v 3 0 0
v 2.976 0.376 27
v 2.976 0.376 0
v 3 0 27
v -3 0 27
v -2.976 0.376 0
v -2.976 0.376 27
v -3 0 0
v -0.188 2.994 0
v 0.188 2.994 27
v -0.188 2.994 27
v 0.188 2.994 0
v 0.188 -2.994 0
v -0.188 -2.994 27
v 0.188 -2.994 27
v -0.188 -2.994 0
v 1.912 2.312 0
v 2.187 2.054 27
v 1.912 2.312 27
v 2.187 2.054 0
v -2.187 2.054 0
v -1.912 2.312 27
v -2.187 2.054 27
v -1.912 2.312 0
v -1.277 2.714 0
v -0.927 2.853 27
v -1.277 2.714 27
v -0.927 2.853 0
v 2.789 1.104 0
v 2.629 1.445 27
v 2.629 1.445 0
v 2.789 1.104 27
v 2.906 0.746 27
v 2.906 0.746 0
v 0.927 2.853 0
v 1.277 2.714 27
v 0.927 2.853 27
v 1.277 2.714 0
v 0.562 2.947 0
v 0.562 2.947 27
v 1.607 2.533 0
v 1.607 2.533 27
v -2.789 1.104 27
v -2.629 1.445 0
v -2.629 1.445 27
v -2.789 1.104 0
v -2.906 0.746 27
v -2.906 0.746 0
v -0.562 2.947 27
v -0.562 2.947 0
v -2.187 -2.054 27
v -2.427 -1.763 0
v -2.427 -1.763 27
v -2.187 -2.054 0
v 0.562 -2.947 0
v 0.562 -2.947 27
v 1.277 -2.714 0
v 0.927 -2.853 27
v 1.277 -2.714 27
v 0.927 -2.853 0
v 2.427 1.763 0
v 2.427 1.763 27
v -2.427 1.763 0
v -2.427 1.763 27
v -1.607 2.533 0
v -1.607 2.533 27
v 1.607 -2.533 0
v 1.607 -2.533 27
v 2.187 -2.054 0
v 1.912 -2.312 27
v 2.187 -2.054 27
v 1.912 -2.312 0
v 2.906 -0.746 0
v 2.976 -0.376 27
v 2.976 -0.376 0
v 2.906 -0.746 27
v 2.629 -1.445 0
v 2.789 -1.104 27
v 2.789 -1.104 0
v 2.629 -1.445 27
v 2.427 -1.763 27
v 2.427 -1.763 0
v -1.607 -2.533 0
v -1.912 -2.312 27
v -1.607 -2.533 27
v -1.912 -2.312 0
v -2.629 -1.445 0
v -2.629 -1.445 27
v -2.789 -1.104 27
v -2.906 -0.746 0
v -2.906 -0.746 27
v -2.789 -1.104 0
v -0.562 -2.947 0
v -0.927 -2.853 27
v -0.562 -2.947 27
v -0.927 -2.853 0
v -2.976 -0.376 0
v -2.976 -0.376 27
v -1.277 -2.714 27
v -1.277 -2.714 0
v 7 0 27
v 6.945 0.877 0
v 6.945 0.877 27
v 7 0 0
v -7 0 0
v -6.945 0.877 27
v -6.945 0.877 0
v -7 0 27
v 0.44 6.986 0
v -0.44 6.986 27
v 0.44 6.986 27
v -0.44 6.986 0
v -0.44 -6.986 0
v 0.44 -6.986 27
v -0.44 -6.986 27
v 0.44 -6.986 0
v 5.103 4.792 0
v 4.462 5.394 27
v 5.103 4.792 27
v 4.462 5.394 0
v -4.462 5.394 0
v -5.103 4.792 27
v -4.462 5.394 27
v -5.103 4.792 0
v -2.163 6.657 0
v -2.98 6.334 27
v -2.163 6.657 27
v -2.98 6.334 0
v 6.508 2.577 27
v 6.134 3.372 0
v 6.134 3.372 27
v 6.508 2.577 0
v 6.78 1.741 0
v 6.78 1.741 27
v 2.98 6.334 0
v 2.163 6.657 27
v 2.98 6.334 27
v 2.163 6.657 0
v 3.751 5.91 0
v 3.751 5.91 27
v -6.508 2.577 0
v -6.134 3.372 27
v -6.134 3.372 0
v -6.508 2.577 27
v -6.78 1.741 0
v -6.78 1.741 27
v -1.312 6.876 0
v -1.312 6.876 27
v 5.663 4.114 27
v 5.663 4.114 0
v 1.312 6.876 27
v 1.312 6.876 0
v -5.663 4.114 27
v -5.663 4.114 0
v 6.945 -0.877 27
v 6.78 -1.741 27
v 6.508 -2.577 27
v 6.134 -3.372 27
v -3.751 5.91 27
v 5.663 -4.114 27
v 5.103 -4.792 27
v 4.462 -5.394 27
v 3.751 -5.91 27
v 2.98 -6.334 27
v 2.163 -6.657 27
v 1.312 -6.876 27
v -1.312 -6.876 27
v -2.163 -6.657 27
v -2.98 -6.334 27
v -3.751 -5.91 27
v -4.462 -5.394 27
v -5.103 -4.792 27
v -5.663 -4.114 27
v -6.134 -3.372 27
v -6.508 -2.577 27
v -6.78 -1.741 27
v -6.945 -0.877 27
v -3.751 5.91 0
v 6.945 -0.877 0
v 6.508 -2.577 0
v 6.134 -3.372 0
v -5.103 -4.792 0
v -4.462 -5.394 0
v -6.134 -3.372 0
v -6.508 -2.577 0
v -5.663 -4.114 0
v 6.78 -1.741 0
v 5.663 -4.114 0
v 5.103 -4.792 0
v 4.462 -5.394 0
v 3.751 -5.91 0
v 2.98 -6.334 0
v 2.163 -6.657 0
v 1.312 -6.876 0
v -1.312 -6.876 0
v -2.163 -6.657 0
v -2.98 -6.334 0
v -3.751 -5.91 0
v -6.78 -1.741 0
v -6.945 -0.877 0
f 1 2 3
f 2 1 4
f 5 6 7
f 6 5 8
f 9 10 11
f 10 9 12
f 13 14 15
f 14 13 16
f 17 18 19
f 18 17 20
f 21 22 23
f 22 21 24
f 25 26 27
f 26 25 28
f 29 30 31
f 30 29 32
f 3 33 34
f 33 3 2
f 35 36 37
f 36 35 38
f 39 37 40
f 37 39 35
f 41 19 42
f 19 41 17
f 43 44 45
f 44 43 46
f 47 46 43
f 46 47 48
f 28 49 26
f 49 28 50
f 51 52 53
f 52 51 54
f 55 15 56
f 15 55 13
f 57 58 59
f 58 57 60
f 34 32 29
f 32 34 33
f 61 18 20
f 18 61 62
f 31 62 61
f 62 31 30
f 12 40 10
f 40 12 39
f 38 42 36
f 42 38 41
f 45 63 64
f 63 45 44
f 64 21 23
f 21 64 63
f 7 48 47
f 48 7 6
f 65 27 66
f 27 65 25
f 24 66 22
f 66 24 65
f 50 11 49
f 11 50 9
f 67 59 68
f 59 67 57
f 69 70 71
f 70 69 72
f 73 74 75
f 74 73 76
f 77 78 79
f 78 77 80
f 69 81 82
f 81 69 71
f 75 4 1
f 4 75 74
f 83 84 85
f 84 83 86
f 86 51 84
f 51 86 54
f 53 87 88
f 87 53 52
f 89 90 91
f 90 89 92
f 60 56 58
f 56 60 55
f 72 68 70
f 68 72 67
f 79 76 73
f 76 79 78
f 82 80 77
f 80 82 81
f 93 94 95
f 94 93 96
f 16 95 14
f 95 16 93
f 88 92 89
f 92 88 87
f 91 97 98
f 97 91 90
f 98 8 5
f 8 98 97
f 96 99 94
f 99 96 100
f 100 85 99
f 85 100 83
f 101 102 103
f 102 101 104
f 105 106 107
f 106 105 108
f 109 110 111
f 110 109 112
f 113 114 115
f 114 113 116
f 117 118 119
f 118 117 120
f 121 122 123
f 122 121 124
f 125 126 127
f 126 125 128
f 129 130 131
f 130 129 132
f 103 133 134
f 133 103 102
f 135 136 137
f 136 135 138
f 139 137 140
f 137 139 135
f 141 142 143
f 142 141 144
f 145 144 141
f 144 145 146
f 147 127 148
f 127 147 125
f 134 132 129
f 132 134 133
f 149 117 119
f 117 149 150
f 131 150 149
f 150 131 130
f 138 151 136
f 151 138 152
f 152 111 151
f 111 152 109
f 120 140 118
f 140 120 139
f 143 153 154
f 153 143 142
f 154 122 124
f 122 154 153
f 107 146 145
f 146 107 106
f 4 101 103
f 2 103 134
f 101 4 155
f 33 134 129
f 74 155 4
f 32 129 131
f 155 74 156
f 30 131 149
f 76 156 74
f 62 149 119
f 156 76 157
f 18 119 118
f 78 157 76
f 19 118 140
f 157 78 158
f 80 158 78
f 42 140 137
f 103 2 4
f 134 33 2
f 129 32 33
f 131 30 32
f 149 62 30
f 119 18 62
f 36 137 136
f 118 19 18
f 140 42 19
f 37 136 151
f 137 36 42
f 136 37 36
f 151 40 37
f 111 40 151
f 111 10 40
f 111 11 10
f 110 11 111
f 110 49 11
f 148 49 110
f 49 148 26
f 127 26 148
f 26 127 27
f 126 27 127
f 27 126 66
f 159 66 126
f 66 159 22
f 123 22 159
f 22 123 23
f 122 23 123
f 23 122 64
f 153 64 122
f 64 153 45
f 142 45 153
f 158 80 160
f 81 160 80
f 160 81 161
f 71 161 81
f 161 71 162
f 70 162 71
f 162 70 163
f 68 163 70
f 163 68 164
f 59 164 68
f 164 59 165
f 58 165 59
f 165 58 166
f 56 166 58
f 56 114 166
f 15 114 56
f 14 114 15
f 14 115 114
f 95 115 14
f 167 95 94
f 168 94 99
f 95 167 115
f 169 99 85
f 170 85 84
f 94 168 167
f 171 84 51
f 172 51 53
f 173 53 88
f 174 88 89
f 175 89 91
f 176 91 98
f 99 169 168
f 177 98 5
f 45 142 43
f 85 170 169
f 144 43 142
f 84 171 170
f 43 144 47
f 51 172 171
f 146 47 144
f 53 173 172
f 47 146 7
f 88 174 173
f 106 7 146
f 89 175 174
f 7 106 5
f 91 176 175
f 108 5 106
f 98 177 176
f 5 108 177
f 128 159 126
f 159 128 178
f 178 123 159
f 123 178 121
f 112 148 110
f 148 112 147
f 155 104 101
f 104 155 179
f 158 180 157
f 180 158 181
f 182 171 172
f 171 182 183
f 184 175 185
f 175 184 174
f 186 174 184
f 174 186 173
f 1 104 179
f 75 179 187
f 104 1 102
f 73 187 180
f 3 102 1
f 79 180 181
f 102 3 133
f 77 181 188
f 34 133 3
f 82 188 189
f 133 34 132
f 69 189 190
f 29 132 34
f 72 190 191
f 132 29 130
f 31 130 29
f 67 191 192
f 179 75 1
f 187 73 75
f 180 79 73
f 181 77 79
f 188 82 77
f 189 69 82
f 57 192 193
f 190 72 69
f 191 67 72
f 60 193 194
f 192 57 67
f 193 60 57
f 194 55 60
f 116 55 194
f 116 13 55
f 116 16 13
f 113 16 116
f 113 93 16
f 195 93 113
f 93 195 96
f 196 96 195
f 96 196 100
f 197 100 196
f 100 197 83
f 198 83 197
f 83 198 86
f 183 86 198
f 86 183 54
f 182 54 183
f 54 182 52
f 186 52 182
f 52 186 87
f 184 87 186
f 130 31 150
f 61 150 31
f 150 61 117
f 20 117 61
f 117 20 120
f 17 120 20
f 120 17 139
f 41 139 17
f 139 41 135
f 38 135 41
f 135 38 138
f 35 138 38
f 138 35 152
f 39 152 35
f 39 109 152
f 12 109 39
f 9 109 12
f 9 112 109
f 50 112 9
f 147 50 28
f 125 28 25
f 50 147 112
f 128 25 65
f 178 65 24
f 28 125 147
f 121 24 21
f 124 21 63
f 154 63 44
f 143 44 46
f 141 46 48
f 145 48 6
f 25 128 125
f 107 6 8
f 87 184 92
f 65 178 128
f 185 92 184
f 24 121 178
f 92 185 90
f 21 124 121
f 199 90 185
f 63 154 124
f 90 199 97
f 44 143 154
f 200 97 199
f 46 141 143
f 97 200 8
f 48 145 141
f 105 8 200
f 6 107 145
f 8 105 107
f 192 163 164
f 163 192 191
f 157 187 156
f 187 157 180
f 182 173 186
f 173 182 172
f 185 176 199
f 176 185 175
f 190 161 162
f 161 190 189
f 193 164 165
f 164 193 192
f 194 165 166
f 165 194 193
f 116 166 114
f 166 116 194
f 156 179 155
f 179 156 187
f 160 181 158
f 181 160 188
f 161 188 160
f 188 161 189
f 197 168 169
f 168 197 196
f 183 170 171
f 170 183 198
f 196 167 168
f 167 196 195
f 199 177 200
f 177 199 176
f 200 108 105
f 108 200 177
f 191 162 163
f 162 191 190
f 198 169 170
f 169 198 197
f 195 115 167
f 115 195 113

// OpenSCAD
$fn = 50;


difference() {
	union() {
		cylinder(h = 27, r = 7.0000000000);
	}
	union() {
		translate(v = [0.0000000000, 0.0000000000, -100.0000000000]) {
			cylinder(h = 200, r = 3.0000000000);
		}
		cylinder(h = 27, r = 1.5000000000);
		cylinder(h = 27, r = 1.5000000000);
		cylinder(h = 27, r = 1.5000000000);
	}
}
